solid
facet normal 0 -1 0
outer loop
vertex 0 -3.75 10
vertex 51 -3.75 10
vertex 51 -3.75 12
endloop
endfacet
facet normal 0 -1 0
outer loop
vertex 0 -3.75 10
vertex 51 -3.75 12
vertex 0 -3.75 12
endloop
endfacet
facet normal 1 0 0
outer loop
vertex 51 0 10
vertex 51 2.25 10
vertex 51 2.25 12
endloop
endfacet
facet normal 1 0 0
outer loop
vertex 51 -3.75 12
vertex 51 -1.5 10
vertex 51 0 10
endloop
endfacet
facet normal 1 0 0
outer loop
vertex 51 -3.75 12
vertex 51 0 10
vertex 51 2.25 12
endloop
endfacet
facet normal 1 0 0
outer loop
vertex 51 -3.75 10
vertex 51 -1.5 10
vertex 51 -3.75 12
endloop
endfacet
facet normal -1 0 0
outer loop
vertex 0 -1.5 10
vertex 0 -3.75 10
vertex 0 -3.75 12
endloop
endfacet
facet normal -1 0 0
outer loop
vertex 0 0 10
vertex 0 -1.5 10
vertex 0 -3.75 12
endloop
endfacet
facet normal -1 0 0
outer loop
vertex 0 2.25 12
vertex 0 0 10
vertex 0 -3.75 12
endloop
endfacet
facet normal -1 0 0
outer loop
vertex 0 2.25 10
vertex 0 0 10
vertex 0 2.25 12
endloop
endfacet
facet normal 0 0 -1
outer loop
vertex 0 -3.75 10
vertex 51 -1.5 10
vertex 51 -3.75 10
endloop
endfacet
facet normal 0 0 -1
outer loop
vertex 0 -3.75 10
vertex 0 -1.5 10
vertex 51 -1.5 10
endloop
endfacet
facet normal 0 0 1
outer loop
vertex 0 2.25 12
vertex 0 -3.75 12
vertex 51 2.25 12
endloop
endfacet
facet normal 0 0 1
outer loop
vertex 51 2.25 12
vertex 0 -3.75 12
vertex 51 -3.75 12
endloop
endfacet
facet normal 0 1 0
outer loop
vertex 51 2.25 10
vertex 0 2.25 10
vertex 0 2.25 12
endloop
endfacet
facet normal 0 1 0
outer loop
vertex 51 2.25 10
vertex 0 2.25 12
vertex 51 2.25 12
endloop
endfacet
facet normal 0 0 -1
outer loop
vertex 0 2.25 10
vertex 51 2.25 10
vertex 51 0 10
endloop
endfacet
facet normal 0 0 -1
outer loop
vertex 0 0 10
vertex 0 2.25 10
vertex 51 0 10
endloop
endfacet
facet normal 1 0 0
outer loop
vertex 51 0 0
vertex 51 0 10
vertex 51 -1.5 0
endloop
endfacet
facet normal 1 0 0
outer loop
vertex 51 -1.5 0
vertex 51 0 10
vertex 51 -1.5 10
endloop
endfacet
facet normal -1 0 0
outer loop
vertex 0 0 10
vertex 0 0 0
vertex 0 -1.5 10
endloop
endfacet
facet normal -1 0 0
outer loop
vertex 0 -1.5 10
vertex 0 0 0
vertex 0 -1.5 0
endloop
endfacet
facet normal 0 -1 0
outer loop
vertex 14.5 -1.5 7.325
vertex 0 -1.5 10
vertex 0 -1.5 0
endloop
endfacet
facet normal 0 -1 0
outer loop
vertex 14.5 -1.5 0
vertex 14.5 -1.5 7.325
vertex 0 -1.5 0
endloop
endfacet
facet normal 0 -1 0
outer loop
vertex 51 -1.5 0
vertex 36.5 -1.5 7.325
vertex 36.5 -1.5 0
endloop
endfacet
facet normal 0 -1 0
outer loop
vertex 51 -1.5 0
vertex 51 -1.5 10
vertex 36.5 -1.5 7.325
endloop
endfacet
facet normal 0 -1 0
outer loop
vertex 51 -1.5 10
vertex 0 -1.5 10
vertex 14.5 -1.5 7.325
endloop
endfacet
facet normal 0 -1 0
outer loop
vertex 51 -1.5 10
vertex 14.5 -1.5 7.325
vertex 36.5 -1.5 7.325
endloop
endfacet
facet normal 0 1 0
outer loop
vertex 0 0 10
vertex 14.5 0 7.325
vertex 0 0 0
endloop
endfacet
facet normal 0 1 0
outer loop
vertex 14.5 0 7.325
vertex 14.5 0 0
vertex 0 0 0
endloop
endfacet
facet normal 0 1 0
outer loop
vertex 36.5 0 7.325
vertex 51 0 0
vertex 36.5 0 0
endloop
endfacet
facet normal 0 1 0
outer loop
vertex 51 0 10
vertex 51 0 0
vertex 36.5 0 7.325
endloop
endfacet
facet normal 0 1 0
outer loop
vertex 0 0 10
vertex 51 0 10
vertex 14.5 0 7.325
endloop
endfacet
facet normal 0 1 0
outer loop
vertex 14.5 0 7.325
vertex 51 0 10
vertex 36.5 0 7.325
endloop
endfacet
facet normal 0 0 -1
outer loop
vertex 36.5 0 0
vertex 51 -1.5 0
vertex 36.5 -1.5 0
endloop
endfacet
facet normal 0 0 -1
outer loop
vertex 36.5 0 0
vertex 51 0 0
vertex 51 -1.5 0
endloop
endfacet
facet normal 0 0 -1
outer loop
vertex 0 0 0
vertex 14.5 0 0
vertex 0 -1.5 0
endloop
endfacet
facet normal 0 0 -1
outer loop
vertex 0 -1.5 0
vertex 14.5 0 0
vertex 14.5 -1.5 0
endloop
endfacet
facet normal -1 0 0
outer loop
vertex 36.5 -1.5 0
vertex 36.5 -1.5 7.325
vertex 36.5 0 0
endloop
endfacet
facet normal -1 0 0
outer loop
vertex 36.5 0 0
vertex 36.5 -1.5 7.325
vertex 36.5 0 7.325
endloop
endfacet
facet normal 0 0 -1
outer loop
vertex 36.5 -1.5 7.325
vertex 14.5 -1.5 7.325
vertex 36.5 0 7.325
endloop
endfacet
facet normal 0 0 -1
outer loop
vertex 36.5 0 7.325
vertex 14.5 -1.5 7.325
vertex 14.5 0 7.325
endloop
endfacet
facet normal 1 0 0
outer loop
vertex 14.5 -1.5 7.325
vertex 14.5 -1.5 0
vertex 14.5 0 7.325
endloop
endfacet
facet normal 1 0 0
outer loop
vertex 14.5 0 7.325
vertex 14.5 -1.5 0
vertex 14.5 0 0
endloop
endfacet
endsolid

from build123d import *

# Parameters (mm, degrees)
SKETCH_W     = 51
SKETCH_H     = 10
PAD_DEPTH    = 1.5
SKETCH001_W  = 22
SKETCH001_H  = 7.32541
POCKET_DEPTH = 5
SKETCH002_W  = 51
SKETCH002_H  = 6
PAD001_DEPTH = 2


with BuildPart() as part:
    # Sketch → Pad (new body)
    with BuildSketch(Plane.XZ):
        with Locations((25.5, 5)):
            Rectangle(SKETCH_W, SKETCH_H)
    extrude(amount=PAD_DEPTH)

    # Sketch001 (on Face6 of Pad) → Pocket (cut)
    with BuildSketch(Plane.XZ.offset(1.5)):
        with Locations((25.5, 3.662705)):
            Rectangle(SKETCH001_W, SKETCH001_H)
    extrude(amount=-POCKET_DEPTH, mode=Mode.SUBTRACT)

    # Sketch002 (on Face6 of Pocket) → Pad001 (join)
    with BuildSketch(Plane(origin=(0, 0, 10), x_dir=(-1, 0, 0), z_dir=(0, 0, 1))):
        with Locations((-25.5, 0.75)):
            Rectangle(SKETCH002_W, SKETCH002_H)
    extrude(amount=PAD001_DEPTH)


solid = part.part
